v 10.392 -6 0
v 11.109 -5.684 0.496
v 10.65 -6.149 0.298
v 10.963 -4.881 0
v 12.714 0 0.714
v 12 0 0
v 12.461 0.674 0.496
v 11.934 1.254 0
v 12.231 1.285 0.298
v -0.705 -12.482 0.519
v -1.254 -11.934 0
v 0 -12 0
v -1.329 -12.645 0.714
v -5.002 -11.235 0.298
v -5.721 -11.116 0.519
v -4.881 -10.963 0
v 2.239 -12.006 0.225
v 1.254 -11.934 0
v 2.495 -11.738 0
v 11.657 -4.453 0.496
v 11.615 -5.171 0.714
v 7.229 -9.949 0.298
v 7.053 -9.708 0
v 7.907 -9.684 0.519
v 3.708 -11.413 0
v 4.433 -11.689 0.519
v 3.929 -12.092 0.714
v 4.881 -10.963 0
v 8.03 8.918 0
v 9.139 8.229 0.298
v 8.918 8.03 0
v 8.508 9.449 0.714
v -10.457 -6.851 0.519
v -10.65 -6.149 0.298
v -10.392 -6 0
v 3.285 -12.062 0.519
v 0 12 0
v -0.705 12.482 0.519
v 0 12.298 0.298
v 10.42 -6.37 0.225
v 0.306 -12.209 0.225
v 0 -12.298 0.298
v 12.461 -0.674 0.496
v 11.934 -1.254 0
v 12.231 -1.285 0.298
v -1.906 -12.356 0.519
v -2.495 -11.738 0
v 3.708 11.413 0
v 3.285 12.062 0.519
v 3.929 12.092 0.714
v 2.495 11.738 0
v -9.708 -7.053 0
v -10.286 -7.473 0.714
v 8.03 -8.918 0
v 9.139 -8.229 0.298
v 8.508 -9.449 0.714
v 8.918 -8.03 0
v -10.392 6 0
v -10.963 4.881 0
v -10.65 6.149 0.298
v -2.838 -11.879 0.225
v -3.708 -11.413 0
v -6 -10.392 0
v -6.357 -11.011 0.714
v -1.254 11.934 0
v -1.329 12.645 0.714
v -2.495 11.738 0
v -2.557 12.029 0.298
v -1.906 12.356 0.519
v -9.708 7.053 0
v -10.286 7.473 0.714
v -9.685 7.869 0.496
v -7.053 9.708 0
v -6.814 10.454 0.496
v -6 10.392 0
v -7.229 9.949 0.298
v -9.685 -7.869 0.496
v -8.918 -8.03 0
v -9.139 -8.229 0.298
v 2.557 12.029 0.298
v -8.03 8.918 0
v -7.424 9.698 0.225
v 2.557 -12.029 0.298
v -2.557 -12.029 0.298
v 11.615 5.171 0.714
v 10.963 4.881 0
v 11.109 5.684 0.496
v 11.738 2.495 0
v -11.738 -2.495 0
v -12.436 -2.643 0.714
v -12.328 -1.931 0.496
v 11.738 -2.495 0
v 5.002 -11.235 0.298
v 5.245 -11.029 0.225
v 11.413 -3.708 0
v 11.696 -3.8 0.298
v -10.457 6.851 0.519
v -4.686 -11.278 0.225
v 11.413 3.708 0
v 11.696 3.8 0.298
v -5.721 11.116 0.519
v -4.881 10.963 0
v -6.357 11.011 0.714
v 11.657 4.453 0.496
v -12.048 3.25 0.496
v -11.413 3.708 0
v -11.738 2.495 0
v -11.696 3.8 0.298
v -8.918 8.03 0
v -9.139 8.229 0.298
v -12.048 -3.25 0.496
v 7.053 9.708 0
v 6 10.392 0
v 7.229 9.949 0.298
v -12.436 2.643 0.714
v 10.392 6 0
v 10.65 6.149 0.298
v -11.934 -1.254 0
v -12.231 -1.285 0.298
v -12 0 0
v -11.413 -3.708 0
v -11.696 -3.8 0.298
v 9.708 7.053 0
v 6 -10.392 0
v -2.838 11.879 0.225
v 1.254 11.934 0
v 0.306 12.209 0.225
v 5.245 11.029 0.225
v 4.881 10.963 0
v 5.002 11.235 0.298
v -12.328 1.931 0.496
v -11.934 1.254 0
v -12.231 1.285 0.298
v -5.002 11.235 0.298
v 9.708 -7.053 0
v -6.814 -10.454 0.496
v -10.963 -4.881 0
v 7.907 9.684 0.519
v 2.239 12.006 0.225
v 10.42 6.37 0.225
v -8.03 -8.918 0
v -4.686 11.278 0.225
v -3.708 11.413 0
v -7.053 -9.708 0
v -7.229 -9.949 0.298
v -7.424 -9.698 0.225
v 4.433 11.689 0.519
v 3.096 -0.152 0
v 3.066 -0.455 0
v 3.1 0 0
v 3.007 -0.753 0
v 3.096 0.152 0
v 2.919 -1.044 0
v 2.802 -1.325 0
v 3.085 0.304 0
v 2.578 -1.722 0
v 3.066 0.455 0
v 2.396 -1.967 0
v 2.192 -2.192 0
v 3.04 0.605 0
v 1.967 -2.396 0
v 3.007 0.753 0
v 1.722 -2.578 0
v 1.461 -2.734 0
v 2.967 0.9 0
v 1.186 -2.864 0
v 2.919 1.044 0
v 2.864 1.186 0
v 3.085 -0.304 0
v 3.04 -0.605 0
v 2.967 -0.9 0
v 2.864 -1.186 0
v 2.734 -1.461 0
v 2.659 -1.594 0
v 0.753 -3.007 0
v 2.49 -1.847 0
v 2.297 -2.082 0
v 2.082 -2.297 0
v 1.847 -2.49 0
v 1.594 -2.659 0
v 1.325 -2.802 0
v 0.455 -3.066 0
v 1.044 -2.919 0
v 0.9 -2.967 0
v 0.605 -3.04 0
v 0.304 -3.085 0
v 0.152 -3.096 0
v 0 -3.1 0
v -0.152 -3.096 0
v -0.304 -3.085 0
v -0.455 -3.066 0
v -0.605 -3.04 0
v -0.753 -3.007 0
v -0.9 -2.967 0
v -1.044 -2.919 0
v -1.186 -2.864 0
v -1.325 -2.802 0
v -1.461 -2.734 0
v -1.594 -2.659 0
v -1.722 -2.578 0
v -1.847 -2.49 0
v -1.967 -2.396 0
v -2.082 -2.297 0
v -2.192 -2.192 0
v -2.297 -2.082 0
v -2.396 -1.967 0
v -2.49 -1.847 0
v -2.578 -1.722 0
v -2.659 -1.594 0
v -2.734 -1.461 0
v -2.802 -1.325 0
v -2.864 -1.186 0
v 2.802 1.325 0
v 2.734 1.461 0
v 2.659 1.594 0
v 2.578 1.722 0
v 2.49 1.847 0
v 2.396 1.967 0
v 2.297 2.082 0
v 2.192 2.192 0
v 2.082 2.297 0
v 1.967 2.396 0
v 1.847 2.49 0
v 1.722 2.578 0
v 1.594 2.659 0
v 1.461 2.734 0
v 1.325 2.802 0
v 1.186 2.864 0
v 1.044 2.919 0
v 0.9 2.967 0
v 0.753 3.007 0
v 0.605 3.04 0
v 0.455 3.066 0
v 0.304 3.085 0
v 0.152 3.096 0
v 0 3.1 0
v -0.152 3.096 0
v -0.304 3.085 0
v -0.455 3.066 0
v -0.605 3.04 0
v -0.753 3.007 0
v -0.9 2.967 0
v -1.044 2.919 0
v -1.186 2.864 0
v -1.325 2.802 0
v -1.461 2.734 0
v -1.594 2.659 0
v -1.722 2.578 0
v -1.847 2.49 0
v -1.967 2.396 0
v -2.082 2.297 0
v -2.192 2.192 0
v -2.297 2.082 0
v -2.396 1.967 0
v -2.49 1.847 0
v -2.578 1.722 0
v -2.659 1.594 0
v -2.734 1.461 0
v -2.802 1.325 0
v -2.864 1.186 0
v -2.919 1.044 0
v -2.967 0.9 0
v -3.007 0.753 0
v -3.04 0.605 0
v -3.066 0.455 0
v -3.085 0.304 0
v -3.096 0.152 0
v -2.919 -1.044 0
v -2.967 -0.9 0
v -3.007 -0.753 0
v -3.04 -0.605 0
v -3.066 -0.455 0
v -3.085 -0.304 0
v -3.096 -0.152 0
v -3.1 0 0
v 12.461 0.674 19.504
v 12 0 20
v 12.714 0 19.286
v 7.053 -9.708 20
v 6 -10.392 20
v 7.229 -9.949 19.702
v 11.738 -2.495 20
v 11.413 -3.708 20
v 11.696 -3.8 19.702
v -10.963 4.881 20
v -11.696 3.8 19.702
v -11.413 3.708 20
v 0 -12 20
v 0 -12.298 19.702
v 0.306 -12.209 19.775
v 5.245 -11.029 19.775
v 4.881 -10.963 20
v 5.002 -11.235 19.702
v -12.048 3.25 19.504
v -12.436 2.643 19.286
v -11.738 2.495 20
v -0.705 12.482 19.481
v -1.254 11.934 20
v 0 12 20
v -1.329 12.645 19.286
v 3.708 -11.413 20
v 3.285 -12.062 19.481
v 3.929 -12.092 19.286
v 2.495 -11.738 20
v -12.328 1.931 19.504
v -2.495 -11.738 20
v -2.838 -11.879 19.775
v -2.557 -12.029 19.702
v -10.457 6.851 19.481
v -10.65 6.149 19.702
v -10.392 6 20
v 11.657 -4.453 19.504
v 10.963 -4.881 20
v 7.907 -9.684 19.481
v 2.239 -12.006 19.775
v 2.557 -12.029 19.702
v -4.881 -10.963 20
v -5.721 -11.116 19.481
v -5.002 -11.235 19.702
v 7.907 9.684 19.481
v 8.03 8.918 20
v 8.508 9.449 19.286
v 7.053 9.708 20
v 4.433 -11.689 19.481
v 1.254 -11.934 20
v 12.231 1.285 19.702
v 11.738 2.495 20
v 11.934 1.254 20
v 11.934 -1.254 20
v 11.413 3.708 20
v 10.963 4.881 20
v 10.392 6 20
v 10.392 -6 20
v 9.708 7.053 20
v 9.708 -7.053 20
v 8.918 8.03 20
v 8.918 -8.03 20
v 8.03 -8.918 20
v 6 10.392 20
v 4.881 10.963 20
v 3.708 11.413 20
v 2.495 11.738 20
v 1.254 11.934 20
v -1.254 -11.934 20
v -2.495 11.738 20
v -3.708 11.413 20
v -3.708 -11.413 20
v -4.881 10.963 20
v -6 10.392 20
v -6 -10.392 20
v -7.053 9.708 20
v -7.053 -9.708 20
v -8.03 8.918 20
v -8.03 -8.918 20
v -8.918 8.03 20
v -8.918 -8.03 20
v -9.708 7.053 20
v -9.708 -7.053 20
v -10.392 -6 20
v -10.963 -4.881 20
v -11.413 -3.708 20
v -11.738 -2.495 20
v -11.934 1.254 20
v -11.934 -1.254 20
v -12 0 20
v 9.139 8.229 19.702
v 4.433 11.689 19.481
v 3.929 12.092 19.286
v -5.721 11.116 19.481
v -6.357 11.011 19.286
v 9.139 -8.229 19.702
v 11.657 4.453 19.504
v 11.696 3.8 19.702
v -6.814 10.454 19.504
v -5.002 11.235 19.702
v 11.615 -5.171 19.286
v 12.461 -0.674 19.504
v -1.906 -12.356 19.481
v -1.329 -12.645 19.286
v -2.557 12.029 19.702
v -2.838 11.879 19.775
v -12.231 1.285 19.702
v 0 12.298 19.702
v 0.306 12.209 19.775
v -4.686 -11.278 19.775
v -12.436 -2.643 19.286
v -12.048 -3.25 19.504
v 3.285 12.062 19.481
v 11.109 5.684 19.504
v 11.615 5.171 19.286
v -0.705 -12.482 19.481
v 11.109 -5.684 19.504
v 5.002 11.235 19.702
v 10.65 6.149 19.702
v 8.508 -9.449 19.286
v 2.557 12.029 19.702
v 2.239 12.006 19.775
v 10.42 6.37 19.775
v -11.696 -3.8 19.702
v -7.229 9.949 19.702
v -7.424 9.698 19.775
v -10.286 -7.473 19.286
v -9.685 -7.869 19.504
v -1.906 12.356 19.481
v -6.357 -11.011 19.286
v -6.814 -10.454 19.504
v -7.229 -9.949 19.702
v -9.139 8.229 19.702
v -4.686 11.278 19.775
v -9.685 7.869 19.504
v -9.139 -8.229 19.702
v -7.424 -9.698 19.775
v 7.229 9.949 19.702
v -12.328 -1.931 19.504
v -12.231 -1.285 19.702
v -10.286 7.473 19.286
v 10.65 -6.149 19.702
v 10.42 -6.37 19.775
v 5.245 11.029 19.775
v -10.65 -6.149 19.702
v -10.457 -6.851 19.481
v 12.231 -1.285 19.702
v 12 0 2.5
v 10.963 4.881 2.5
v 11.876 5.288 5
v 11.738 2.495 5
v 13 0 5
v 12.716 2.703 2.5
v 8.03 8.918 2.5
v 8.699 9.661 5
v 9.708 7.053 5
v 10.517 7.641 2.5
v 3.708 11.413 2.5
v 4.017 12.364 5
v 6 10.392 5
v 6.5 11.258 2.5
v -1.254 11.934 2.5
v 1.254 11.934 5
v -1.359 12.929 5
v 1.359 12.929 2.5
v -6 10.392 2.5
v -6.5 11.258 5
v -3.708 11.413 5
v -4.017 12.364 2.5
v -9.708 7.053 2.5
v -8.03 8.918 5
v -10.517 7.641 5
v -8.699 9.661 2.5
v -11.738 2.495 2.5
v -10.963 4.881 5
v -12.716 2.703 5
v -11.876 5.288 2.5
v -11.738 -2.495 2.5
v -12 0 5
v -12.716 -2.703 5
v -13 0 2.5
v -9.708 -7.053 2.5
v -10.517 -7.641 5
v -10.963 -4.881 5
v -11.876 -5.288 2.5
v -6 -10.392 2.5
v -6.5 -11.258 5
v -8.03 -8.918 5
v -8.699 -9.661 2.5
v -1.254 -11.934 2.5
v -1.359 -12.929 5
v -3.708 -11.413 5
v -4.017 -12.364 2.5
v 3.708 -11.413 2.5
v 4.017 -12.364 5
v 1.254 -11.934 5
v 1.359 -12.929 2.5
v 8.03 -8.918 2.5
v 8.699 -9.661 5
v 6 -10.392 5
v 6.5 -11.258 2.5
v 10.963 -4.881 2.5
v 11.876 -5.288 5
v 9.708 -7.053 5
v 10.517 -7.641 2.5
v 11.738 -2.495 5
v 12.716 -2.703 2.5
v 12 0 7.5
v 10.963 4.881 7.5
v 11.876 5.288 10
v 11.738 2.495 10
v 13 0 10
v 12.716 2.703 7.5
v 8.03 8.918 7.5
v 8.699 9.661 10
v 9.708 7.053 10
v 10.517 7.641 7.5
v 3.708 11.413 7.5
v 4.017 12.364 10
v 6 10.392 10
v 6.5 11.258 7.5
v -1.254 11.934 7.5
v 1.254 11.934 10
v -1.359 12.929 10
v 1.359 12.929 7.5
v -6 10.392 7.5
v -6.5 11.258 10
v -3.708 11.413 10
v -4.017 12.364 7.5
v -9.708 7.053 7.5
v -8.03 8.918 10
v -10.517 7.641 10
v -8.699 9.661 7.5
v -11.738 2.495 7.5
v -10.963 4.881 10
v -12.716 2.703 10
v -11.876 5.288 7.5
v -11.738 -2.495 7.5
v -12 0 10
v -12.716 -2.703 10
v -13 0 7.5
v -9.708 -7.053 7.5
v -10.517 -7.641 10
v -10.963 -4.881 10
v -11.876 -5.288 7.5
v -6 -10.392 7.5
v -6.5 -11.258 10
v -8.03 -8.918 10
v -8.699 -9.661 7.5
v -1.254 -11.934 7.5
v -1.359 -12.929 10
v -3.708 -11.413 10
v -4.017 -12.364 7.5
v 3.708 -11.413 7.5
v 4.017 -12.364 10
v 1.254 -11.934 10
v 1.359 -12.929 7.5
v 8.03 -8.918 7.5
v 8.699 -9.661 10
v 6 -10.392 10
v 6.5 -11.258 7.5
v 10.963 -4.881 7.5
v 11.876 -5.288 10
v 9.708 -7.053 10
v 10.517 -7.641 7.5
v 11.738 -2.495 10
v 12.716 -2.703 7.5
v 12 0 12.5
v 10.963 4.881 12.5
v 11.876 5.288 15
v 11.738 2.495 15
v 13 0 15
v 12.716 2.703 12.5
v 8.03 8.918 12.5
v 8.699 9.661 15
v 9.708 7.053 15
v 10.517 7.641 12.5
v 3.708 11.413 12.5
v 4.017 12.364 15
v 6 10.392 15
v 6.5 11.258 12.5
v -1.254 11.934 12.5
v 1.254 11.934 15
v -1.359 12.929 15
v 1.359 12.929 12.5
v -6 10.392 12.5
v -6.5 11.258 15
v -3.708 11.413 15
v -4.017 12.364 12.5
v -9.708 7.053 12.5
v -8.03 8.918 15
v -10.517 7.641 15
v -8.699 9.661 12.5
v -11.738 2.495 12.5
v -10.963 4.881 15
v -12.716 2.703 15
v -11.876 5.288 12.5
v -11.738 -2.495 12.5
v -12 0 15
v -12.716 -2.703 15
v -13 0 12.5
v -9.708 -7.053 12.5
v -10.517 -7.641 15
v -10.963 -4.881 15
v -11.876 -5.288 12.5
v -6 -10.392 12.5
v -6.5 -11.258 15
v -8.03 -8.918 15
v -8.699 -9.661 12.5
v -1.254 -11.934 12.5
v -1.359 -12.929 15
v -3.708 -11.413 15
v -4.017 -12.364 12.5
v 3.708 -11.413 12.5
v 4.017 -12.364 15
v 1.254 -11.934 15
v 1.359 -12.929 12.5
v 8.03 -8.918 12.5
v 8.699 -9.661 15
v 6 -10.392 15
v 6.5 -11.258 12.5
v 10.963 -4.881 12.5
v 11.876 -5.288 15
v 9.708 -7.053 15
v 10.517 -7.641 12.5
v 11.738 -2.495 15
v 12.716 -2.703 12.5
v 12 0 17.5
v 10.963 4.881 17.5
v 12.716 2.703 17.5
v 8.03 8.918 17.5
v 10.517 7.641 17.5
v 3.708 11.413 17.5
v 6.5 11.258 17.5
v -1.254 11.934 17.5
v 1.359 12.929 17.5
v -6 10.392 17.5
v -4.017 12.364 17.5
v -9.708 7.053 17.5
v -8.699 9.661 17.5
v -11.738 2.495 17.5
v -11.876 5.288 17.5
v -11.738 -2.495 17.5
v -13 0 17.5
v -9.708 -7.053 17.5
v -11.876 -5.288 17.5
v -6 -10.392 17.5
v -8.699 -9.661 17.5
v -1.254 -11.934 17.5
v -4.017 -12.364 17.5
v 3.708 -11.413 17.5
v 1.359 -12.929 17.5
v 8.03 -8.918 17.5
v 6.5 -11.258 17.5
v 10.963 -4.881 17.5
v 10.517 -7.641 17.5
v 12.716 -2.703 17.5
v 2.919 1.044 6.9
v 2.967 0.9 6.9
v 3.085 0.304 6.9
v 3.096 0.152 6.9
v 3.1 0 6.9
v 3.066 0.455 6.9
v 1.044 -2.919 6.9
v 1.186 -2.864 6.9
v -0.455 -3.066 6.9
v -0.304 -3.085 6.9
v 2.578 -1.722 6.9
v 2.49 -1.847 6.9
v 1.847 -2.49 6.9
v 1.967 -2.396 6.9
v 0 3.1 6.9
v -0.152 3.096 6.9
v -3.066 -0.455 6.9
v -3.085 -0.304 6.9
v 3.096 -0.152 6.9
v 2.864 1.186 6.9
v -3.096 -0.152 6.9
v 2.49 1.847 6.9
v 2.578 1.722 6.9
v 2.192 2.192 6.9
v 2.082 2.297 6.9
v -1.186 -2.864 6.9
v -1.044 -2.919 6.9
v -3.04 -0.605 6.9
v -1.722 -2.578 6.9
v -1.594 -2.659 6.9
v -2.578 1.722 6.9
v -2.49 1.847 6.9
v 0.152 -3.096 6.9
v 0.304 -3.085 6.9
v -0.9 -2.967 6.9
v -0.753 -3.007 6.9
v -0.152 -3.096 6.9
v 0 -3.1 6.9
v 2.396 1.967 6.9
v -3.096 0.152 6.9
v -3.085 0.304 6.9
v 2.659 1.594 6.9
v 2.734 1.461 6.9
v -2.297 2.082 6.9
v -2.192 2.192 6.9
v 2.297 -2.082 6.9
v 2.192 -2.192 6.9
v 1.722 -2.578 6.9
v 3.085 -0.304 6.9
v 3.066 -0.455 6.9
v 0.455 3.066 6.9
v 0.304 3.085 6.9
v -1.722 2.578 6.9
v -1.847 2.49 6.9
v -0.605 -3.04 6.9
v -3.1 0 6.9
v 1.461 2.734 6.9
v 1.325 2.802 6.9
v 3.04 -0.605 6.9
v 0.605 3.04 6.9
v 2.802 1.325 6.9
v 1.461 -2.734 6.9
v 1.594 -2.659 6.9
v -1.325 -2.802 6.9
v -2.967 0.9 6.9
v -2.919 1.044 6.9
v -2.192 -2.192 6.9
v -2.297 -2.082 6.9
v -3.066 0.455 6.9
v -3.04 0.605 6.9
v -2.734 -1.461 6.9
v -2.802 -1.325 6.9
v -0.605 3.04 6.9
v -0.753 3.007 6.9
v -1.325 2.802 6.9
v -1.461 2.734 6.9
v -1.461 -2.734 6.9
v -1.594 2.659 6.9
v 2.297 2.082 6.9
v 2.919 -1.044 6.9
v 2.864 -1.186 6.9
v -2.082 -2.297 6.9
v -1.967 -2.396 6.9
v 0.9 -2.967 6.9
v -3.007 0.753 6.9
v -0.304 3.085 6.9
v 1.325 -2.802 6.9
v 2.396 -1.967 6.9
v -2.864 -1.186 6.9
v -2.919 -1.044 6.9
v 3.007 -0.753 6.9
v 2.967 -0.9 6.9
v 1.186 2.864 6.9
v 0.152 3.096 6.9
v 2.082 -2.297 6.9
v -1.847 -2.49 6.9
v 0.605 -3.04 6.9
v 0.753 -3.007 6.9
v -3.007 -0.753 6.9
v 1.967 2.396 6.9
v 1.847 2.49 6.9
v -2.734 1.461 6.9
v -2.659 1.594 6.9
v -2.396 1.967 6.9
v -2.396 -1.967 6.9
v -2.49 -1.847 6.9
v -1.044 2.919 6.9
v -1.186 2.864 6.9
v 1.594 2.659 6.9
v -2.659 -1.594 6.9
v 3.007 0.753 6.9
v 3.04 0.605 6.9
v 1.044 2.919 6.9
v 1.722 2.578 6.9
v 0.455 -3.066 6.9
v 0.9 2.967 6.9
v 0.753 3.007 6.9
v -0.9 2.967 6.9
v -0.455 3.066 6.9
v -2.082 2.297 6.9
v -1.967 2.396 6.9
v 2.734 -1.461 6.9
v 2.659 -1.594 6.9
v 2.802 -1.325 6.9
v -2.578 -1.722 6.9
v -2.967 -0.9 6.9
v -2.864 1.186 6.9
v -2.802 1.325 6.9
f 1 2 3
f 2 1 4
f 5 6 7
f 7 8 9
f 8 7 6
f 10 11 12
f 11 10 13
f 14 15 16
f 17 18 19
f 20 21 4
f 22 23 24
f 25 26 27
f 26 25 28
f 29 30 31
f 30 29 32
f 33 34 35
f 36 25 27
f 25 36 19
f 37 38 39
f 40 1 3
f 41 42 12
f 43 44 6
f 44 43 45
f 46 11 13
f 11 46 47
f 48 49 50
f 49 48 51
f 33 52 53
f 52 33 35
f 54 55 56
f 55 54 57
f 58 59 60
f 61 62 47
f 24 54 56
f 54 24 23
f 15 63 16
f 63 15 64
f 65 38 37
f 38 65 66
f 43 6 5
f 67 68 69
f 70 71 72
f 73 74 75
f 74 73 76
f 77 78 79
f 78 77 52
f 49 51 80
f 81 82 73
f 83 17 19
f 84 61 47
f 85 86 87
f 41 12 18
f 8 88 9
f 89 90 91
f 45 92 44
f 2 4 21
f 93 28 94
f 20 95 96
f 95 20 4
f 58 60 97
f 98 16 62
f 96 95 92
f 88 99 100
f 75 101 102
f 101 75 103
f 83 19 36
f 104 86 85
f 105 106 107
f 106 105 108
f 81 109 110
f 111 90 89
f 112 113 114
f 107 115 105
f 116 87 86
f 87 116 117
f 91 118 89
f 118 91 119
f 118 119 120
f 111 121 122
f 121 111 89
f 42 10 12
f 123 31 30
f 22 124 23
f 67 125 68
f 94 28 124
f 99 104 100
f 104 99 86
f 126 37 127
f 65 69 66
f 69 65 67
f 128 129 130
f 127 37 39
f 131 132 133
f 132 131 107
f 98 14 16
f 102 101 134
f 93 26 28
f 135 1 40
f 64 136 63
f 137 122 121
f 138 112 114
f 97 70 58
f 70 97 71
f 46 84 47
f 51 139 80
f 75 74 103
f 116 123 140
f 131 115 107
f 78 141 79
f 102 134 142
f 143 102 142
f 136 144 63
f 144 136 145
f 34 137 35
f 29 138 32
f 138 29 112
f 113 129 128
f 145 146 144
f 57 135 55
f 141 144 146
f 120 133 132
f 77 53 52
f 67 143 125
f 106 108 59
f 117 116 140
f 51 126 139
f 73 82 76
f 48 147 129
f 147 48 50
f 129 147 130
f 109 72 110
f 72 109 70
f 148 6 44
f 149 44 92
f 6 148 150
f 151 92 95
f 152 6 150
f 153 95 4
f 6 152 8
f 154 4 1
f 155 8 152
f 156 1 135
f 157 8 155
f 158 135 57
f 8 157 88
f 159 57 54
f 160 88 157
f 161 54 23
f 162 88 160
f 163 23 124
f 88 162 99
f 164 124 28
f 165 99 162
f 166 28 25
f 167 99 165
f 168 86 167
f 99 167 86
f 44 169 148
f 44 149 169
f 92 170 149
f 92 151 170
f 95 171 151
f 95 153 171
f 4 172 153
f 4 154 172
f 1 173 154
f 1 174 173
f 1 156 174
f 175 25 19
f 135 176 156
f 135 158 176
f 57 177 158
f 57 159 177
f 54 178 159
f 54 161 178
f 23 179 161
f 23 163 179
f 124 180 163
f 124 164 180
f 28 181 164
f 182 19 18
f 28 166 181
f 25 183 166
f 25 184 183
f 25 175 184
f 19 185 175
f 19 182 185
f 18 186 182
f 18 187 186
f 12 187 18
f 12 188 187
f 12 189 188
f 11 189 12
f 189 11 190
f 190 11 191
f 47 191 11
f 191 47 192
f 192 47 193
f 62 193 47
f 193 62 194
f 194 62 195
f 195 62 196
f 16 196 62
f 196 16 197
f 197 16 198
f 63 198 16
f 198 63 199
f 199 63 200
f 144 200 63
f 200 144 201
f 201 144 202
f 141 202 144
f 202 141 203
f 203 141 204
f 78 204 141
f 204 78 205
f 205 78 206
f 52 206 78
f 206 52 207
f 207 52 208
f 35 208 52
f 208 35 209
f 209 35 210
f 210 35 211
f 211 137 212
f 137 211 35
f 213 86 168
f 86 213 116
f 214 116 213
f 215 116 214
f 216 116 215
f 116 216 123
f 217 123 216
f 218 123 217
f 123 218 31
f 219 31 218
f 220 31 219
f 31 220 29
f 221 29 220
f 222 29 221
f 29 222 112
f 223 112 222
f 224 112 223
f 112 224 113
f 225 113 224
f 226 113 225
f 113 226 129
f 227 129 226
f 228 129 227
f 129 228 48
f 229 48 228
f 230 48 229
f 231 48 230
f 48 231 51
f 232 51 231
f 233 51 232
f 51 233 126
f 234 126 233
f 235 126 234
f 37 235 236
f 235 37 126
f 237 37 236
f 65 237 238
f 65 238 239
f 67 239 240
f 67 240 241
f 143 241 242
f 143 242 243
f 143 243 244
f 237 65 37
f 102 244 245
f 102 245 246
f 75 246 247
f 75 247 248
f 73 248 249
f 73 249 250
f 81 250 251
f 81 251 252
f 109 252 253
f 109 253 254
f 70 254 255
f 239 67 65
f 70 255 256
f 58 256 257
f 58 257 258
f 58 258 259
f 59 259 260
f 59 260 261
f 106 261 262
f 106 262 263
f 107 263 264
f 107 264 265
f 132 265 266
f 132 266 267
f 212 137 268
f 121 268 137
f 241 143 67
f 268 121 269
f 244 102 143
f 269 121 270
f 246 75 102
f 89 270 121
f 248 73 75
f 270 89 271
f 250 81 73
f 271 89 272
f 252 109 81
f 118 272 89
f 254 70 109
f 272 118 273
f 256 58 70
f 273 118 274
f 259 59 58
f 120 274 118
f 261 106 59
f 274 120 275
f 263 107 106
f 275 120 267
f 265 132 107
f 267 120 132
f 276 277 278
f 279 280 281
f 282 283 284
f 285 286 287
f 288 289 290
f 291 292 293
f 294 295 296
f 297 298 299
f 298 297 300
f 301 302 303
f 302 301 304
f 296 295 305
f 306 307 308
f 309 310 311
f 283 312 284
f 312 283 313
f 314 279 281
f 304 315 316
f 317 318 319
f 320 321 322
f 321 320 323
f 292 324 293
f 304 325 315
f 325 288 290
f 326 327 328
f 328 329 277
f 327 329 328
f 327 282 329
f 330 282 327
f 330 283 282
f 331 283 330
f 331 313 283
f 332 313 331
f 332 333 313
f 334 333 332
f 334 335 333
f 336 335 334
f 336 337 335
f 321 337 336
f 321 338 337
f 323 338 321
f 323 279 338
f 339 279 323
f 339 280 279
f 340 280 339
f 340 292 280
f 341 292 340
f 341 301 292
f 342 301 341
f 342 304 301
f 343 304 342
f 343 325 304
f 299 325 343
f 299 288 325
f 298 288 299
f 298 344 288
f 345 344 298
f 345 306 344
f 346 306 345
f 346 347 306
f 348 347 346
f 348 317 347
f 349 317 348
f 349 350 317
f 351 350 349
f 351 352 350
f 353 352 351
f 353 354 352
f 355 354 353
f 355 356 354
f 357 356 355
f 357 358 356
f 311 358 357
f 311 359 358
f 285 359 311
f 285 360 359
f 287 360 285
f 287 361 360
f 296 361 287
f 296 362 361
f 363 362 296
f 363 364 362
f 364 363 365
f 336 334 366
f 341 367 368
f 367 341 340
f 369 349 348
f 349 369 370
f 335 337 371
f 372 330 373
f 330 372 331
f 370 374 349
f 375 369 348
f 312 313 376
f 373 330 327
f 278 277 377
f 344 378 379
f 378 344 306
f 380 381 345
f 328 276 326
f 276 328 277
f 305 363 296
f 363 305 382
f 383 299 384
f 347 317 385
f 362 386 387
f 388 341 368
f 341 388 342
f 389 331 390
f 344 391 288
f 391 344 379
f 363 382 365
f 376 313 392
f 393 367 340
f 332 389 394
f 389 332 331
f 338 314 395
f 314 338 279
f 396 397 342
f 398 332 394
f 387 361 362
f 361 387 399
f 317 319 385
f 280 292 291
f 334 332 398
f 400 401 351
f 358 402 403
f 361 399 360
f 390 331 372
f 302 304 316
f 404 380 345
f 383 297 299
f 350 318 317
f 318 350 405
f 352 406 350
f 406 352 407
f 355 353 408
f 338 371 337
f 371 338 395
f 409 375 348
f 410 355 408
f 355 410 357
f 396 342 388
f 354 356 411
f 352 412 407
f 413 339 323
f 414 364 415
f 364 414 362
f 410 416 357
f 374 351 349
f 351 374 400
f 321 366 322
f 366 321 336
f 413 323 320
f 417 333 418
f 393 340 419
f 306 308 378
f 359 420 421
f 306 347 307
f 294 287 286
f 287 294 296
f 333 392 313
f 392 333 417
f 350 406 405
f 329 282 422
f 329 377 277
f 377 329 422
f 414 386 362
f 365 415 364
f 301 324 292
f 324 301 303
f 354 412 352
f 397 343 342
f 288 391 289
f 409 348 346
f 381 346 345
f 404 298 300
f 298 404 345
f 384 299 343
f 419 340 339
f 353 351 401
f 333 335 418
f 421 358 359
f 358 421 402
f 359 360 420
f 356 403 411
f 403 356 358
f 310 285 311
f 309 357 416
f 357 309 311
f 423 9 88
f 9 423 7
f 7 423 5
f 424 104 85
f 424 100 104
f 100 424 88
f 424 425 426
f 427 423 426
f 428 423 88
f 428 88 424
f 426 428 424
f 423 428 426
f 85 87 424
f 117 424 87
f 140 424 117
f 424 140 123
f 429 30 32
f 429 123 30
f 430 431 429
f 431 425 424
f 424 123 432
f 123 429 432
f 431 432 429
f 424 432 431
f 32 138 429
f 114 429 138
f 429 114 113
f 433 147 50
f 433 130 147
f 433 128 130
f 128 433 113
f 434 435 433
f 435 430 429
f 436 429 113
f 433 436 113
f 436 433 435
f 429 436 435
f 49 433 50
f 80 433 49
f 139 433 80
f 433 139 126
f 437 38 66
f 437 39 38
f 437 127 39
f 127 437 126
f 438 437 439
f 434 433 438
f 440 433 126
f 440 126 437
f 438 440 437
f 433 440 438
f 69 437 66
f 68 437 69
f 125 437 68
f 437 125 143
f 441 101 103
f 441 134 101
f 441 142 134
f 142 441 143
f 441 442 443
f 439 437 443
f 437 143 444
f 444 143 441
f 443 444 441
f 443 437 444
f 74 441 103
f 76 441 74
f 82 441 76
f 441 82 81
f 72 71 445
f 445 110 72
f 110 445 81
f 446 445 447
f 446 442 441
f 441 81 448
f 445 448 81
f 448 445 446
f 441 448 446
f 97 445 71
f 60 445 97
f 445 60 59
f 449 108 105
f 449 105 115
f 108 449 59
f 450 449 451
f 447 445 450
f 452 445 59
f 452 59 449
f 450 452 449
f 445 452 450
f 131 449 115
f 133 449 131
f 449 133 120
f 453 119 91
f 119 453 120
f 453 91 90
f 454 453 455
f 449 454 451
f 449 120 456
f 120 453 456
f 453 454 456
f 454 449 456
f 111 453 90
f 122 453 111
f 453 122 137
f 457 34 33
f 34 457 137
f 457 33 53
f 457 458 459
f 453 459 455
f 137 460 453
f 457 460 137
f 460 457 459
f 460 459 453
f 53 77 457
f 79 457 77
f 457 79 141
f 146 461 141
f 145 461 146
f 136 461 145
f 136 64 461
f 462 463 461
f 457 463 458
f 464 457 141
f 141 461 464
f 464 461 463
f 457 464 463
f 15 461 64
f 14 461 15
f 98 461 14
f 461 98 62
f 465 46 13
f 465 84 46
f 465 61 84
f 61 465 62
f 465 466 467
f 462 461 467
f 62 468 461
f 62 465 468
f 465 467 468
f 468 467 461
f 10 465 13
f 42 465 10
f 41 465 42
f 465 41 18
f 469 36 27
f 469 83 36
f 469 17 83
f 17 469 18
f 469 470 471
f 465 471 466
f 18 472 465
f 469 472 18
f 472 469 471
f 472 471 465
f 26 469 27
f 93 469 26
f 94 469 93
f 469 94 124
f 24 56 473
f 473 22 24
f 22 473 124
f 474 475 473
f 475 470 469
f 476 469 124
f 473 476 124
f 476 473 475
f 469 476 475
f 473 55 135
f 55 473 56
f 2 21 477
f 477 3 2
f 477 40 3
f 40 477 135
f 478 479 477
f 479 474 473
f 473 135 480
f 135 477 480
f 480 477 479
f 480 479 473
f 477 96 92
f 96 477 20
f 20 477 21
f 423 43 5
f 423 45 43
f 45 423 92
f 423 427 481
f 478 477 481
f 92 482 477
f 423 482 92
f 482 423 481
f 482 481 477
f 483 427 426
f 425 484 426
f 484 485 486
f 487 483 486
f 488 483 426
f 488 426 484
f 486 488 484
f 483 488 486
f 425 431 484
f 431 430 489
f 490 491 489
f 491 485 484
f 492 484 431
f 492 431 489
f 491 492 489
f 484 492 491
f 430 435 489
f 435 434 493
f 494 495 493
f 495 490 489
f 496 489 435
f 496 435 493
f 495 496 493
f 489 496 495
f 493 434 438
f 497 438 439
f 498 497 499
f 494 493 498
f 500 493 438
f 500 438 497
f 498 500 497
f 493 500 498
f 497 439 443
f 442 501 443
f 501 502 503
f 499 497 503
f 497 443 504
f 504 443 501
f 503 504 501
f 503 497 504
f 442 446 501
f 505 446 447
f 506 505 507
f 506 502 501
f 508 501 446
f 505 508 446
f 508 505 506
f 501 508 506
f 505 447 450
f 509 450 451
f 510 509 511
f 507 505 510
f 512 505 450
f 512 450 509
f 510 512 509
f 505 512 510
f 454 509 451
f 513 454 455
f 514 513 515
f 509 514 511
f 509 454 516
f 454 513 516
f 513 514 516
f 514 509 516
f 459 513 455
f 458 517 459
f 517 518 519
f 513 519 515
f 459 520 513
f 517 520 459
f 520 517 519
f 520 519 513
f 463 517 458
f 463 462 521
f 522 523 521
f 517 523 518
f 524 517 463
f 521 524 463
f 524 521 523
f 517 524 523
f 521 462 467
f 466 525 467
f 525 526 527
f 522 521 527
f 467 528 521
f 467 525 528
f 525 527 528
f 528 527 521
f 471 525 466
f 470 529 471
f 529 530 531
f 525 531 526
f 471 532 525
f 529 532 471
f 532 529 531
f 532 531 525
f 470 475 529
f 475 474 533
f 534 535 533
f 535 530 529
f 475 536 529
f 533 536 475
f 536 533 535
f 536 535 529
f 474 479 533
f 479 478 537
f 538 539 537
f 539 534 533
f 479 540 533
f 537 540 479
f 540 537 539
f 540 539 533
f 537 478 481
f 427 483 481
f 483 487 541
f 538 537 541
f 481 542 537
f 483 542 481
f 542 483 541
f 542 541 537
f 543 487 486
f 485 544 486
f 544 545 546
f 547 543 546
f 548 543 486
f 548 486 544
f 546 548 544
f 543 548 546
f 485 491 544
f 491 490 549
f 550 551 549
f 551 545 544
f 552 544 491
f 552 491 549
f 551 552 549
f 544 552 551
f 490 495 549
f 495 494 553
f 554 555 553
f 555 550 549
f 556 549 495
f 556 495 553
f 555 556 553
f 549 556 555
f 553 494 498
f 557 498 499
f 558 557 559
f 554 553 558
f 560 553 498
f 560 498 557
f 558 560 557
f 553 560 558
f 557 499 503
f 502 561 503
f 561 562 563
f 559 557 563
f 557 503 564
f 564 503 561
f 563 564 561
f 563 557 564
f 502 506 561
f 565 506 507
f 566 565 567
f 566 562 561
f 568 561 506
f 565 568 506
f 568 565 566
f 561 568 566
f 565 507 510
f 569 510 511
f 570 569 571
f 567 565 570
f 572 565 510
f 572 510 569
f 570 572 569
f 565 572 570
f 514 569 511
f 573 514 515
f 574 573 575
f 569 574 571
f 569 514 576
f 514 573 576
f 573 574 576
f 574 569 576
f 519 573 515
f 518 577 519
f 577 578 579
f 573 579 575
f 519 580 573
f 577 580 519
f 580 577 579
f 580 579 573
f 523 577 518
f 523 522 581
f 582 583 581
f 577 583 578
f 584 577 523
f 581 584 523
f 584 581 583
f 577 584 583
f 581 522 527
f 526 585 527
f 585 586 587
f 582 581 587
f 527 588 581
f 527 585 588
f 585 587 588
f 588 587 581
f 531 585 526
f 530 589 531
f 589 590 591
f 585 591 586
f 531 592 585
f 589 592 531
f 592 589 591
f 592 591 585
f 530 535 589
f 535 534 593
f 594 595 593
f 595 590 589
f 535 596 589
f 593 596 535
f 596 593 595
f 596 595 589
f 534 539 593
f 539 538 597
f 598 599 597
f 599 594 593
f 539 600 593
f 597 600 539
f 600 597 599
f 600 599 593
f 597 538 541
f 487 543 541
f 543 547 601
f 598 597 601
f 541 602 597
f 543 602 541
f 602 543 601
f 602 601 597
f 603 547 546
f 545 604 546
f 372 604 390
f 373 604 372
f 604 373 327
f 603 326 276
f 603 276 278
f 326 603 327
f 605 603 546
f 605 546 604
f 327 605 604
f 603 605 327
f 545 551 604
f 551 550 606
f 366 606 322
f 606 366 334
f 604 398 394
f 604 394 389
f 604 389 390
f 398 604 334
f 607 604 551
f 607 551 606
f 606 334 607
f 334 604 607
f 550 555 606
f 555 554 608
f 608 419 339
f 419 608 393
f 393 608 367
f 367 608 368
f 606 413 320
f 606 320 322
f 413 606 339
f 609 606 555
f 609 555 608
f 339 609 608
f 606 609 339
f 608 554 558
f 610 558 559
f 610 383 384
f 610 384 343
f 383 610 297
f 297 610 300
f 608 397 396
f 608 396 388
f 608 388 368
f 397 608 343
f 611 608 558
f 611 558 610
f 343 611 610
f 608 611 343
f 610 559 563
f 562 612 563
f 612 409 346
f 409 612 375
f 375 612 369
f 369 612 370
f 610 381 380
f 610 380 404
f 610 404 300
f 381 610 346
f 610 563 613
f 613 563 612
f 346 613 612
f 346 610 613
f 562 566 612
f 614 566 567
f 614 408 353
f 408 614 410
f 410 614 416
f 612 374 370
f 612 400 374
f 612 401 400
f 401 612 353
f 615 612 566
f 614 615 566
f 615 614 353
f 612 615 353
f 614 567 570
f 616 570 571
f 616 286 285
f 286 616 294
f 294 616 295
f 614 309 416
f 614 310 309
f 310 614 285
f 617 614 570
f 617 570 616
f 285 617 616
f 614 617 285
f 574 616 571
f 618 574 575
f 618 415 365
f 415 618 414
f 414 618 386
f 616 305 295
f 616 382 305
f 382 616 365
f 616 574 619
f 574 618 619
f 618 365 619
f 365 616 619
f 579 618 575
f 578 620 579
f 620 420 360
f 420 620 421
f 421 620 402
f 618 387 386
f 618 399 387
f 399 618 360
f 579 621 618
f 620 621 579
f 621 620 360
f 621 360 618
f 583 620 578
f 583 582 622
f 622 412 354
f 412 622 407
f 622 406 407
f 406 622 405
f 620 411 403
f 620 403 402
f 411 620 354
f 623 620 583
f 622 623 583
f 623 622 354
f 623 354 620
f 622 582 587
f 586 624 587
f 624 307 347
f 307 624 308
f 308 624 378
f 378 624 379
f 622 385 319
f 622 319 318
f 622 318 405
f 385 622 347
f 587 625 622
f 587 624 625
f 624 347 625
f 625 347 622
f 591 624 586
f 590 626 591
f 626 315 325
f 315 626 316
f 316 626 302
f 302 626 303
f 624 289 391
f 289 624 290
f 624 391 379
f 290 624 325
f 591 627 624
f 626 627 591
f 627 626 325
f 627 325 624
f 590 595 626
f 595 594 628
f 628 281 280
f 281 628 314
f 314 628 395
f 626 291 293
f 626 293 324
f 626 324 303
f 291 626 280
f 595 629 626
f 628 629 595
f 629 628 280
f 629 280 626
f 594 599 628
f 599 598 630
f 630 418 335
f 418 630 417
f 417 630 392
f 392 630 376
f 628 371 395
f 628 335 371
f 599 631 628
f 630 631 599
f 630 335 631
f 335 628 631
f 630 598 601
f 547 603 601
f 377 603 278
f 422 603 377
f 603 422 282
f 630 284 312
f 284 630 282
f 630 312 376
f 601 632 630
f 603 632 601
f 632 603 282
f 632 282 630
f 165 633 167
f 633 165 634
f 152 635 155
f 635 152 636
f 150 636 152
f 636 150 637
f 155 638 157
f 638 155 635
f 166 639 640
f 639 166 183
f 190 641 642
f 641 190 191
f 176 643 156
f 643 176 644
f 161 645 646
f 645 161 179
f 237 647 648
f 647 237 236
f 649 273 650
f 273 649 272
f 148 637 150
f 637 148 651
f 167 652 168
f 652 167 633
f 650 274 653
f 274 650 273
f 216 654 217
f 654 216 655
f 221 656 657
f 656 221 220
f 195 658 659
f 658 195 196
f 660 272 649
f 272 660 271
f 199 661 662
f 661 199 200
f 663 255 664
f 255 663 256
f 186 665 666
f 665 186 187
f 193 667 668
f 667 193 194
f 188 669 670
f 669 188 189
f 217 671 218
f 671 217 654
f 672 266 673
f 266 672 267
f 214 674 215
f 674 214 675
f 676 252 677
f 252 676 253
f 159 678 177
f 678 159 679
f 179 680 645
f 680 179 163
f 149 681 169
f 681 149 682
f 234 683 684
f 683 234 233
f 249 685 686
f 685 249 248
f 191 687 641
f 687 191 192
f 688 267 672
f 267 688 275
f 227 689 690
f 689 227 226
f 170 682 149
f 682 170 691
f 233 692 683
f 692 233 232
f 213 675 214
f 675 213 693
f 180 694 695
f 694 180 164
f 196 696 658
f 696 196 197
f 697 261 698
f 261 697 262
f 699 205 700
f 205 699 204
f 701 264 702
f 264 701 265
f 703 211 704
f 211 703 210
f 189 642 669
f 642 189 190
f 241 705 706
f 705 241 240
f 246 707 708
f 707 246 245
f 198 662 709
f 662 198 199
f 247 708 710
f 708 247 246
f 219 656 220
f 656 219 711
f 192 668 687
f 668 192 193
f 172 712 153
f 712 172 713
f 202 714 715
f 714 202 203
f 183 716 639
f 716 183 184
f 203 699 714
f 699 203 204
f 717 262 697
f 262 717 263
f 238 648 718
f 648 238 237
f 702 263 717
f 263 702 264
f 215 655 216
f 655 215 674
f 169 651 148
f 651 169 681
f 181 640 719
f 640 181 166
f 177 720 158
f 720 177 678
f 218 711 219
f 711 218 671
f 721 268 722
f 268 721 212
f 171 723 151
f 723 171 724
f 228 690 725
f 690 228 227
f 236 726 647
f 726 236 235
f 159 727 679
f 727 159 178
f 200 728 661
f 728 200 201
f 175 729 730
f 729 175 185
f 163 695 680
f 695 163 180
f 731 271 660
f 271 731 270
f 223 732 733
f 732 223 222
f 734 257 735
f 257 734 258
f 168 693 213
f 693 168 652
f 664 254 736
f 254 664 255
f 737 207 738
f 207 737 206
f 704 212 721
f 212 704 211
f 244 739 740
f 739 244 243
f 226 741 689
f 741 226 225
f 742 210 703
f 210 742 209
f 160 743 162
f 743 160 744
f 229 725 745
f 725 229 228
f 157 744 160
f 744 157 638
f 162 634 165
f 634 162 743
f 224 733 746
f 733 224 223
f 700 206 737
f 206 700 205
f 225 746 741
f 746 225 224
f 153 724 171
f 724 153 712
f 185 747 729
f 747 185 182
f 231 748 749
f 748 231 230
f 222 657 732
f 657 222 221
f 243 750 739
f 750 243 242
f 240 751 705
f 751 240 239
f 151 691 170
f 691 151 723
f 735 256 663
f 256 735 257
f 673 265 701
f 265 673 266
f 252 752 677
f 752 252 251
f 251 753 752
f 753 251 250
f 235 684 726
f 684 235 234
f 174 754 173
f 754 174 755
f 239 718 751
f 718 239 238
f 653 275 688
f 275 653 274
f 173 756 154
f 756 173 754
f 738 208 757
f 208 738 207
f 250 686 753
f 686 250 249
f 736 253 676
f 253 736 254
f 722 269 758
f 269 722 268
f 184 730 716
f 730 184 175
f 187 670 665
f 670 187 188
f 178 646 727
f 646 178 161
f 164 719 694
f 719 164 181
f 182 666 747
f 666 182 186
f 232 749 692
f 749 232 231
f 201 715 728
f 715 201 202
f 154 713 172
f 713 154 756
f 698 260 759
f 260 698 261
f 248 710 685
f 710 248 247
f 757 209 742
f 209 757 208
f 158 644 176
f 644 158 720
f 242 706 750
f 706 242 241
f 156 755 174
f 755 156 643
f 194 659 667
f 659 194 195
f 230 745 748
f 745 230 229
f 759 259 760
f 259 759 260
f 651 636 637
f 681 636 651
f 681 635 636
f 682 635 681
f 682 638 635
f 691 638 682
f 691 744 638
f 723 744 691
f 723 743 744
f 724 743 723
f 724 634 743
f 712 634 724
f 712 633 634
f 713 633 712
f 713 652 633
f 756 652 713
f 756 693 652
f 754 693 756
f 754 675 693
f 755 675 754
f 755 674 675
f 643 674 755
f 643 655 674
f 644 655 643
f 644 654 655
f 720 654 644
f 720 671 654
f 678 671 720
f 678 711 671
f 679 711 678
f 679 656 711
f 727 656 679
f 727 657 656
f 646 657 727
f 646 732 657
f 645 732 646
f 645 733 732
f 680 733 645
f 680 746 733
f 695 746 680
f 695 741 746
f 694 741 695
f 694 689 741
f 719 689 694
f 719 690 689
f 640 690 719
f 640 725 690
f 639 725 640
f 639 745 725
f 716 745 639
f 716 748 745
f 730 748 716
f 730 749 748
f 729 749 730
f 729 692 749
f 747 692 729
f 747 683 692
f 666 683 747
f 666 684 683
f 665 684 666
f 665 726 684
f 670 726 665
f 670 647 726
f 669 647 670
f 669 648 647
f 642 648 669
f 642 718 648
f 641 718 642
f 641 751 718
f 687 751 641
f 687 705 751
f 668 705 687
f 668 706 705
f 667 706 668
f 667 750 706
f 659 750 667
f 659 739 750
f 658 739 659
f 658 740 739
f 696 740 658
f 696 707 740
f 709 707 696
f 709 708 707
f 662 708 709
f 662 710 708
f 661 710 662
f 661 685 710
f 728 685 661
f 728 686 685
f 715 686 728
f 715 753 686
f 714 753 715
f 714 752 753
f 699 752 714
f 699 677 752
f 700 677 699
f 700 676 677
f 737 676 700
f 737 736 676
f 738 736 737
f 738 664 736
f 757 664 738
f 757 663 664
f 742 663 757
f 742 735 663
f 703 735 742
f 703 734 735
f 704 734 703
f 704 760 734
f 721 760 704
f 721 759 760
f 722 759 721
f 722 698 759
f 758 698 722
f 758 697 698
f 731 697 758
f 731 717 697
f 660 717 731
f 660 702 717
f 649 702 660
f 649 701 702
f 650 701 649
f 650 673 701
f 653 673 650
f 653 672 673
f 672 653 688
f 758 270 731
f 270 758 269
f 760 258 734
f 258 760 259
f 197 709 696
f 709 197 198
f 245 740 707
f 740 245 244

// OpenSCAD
// file: knurledFinishLib.scad
/*
 * knurledFinishLib.scad
 *
 * Written by aubenc @ Thingiverse
 *
 * This script is licensed under the Public Domain license.
 *
 * http://www.thingiverse.com/thing:9095
 *
 * Usage:
 *
 *    knurled_cyl( Knurled cylinder height,
 *                 Knurled cylinder outer diameter,
 *                 Knurl polyhedron width,
 *                 Knurl polyhedron height,
 *                 Knurl polyhedron depth,
 *                 Cylinder ends smoothed height,
 *                 Knurled surface smoothing amount );
 */
module knurled_cyl(chg, cod, cwd, csh, cdp, fsh, smt)
{
    cord = (cod + cdp + cdp * smt / 100) / 2;
    cird = cord - cdp;
    cfn = round(2 * cird * PI / cwd);
    clf = 360 / cfn;
    crn = ceil(chg / csh);

    intersection()
    {
        shape(fsh, cird, cord - cdp * smt / 100, cfn * 4, chg);

        translate([ 0, 0, -(crn * csh - chg) / 2 ]) knurled_finish(cord, cird, clf, csh, cfn, crn);
    }
}

module shape(hsh, ird, ord, fn4, hg)
{
    union()
    {
        cylinder(h = hsh, r1 = ird, r2 = ord, $fn = fn4, center = false);

        translate([ 0, 0, hsh - 0.002 ]) cylinder(h = hg - 2 * hsh + 0.004, r = ord, $fn = fn4, center = false);

        translate([ 0, 0, hg - hsh ]) cylinder(h = hsh, r1 = ord, r2 = ird, $fn = fn4, center = false);
    }
}

module knurled_finish(ord, ird, lf, sh, fn, rn)
{
    for (j = [0:rn - 1])
    {
        for (i = [0:fn - 1])
        {
            h0 = sh * j;
            h1 = sh * (j + 1 / 2);
            h2 = sh * (j + 1);

            lf0 = lf * i;
            lf1 = lf * (i + 1 / 2);
            lf2 = lf * (i + 1);
            polyhedron(points =
                           [
                               [ 0, 0, h0 ], [ ord * cos(lf0), ord * sin(lf0), h0 ],
                               [ ird * cos(lf1), ird * sin(lf1), h0 ], [ ord * cos(lf2), ord * sin(lf2), h0 ],

                               [ ird * cos(lf0), ird * sin(lf0), h1 ], [ ord * cos(lf1), ord * sin(lf1), h1 ],
                               [ ird * cos(lf2), ird * sin(lf2), h1 ],

                               [ 0, 0, h2 ], [ ord * cos(lf0), ord * sin(lf0), h2 ],
                               [ ird * cos(lf1), ird * sin(lf1), h2 ], [ ord * cos(lf2), ord * sin(lf2), h2 ]
                           ],
                       triangles =
                           [
                               [ 0, 1, 2 ], [ 2, 3, 0 ], [ 1, 0, 4 ], [ 4, 0, 7 ], [ 7, 8, 4 ], [ 8, 7, 9 ],
                               [ 10, 9, 7 ], [ 10, 7, 6 ], [ 6, 7, 0 ], [ 3, 6, 0 ], [ 2, 1, 4 ], [ 3, 2, 6 ],
                               [ 10, 6, 9 ], [ 8, 9, 4 ], [ 4, 5, 2 ], [ 2, 5, 6 ], [ 6, 5, 9 ], [ 9, 5, 4 ]
                           ],
                       convexity = 5);
        }
    }
}
// main file
include <knurledFinishLib.scad>

offsetMargin = 0.1;
$fn = 128;

encoderShaftDiameter = 6.0;
encoderShaftFlatLength = 7.0;

knobDiameter = 25.0;
knobHeight = 20;
knurlWidth = 5;            // Knurl polyhedron width
knurlHeight = 5;           // Knurl polyhedron height
knurlDepth = 1;            // Knurl polyhedron depth
endSmoothing = 1;          // Cylinder ends smoothed height
surfaceSmoothing = 0;      // [ 0% - 100% ] Knurled surface smoothing amount

createKnob();

module createKnob()
{
    union()
    {
        difference()
        {
            // Main Knob Body
            knurled_cyl(knobHeight, knobDiameter, knurlWidth, knurlHeight, knurlDepth, endSmoothing, surfaceSmoothing);
            
            // Shaft Cutout
            translate(v = [0, 0, -offsetMargin])
            {
                cylinder(r = encoderShaftDiameter / 2 + offsetMargin, h = encoderShaftFlatLength);
            }
        }
    }
}
